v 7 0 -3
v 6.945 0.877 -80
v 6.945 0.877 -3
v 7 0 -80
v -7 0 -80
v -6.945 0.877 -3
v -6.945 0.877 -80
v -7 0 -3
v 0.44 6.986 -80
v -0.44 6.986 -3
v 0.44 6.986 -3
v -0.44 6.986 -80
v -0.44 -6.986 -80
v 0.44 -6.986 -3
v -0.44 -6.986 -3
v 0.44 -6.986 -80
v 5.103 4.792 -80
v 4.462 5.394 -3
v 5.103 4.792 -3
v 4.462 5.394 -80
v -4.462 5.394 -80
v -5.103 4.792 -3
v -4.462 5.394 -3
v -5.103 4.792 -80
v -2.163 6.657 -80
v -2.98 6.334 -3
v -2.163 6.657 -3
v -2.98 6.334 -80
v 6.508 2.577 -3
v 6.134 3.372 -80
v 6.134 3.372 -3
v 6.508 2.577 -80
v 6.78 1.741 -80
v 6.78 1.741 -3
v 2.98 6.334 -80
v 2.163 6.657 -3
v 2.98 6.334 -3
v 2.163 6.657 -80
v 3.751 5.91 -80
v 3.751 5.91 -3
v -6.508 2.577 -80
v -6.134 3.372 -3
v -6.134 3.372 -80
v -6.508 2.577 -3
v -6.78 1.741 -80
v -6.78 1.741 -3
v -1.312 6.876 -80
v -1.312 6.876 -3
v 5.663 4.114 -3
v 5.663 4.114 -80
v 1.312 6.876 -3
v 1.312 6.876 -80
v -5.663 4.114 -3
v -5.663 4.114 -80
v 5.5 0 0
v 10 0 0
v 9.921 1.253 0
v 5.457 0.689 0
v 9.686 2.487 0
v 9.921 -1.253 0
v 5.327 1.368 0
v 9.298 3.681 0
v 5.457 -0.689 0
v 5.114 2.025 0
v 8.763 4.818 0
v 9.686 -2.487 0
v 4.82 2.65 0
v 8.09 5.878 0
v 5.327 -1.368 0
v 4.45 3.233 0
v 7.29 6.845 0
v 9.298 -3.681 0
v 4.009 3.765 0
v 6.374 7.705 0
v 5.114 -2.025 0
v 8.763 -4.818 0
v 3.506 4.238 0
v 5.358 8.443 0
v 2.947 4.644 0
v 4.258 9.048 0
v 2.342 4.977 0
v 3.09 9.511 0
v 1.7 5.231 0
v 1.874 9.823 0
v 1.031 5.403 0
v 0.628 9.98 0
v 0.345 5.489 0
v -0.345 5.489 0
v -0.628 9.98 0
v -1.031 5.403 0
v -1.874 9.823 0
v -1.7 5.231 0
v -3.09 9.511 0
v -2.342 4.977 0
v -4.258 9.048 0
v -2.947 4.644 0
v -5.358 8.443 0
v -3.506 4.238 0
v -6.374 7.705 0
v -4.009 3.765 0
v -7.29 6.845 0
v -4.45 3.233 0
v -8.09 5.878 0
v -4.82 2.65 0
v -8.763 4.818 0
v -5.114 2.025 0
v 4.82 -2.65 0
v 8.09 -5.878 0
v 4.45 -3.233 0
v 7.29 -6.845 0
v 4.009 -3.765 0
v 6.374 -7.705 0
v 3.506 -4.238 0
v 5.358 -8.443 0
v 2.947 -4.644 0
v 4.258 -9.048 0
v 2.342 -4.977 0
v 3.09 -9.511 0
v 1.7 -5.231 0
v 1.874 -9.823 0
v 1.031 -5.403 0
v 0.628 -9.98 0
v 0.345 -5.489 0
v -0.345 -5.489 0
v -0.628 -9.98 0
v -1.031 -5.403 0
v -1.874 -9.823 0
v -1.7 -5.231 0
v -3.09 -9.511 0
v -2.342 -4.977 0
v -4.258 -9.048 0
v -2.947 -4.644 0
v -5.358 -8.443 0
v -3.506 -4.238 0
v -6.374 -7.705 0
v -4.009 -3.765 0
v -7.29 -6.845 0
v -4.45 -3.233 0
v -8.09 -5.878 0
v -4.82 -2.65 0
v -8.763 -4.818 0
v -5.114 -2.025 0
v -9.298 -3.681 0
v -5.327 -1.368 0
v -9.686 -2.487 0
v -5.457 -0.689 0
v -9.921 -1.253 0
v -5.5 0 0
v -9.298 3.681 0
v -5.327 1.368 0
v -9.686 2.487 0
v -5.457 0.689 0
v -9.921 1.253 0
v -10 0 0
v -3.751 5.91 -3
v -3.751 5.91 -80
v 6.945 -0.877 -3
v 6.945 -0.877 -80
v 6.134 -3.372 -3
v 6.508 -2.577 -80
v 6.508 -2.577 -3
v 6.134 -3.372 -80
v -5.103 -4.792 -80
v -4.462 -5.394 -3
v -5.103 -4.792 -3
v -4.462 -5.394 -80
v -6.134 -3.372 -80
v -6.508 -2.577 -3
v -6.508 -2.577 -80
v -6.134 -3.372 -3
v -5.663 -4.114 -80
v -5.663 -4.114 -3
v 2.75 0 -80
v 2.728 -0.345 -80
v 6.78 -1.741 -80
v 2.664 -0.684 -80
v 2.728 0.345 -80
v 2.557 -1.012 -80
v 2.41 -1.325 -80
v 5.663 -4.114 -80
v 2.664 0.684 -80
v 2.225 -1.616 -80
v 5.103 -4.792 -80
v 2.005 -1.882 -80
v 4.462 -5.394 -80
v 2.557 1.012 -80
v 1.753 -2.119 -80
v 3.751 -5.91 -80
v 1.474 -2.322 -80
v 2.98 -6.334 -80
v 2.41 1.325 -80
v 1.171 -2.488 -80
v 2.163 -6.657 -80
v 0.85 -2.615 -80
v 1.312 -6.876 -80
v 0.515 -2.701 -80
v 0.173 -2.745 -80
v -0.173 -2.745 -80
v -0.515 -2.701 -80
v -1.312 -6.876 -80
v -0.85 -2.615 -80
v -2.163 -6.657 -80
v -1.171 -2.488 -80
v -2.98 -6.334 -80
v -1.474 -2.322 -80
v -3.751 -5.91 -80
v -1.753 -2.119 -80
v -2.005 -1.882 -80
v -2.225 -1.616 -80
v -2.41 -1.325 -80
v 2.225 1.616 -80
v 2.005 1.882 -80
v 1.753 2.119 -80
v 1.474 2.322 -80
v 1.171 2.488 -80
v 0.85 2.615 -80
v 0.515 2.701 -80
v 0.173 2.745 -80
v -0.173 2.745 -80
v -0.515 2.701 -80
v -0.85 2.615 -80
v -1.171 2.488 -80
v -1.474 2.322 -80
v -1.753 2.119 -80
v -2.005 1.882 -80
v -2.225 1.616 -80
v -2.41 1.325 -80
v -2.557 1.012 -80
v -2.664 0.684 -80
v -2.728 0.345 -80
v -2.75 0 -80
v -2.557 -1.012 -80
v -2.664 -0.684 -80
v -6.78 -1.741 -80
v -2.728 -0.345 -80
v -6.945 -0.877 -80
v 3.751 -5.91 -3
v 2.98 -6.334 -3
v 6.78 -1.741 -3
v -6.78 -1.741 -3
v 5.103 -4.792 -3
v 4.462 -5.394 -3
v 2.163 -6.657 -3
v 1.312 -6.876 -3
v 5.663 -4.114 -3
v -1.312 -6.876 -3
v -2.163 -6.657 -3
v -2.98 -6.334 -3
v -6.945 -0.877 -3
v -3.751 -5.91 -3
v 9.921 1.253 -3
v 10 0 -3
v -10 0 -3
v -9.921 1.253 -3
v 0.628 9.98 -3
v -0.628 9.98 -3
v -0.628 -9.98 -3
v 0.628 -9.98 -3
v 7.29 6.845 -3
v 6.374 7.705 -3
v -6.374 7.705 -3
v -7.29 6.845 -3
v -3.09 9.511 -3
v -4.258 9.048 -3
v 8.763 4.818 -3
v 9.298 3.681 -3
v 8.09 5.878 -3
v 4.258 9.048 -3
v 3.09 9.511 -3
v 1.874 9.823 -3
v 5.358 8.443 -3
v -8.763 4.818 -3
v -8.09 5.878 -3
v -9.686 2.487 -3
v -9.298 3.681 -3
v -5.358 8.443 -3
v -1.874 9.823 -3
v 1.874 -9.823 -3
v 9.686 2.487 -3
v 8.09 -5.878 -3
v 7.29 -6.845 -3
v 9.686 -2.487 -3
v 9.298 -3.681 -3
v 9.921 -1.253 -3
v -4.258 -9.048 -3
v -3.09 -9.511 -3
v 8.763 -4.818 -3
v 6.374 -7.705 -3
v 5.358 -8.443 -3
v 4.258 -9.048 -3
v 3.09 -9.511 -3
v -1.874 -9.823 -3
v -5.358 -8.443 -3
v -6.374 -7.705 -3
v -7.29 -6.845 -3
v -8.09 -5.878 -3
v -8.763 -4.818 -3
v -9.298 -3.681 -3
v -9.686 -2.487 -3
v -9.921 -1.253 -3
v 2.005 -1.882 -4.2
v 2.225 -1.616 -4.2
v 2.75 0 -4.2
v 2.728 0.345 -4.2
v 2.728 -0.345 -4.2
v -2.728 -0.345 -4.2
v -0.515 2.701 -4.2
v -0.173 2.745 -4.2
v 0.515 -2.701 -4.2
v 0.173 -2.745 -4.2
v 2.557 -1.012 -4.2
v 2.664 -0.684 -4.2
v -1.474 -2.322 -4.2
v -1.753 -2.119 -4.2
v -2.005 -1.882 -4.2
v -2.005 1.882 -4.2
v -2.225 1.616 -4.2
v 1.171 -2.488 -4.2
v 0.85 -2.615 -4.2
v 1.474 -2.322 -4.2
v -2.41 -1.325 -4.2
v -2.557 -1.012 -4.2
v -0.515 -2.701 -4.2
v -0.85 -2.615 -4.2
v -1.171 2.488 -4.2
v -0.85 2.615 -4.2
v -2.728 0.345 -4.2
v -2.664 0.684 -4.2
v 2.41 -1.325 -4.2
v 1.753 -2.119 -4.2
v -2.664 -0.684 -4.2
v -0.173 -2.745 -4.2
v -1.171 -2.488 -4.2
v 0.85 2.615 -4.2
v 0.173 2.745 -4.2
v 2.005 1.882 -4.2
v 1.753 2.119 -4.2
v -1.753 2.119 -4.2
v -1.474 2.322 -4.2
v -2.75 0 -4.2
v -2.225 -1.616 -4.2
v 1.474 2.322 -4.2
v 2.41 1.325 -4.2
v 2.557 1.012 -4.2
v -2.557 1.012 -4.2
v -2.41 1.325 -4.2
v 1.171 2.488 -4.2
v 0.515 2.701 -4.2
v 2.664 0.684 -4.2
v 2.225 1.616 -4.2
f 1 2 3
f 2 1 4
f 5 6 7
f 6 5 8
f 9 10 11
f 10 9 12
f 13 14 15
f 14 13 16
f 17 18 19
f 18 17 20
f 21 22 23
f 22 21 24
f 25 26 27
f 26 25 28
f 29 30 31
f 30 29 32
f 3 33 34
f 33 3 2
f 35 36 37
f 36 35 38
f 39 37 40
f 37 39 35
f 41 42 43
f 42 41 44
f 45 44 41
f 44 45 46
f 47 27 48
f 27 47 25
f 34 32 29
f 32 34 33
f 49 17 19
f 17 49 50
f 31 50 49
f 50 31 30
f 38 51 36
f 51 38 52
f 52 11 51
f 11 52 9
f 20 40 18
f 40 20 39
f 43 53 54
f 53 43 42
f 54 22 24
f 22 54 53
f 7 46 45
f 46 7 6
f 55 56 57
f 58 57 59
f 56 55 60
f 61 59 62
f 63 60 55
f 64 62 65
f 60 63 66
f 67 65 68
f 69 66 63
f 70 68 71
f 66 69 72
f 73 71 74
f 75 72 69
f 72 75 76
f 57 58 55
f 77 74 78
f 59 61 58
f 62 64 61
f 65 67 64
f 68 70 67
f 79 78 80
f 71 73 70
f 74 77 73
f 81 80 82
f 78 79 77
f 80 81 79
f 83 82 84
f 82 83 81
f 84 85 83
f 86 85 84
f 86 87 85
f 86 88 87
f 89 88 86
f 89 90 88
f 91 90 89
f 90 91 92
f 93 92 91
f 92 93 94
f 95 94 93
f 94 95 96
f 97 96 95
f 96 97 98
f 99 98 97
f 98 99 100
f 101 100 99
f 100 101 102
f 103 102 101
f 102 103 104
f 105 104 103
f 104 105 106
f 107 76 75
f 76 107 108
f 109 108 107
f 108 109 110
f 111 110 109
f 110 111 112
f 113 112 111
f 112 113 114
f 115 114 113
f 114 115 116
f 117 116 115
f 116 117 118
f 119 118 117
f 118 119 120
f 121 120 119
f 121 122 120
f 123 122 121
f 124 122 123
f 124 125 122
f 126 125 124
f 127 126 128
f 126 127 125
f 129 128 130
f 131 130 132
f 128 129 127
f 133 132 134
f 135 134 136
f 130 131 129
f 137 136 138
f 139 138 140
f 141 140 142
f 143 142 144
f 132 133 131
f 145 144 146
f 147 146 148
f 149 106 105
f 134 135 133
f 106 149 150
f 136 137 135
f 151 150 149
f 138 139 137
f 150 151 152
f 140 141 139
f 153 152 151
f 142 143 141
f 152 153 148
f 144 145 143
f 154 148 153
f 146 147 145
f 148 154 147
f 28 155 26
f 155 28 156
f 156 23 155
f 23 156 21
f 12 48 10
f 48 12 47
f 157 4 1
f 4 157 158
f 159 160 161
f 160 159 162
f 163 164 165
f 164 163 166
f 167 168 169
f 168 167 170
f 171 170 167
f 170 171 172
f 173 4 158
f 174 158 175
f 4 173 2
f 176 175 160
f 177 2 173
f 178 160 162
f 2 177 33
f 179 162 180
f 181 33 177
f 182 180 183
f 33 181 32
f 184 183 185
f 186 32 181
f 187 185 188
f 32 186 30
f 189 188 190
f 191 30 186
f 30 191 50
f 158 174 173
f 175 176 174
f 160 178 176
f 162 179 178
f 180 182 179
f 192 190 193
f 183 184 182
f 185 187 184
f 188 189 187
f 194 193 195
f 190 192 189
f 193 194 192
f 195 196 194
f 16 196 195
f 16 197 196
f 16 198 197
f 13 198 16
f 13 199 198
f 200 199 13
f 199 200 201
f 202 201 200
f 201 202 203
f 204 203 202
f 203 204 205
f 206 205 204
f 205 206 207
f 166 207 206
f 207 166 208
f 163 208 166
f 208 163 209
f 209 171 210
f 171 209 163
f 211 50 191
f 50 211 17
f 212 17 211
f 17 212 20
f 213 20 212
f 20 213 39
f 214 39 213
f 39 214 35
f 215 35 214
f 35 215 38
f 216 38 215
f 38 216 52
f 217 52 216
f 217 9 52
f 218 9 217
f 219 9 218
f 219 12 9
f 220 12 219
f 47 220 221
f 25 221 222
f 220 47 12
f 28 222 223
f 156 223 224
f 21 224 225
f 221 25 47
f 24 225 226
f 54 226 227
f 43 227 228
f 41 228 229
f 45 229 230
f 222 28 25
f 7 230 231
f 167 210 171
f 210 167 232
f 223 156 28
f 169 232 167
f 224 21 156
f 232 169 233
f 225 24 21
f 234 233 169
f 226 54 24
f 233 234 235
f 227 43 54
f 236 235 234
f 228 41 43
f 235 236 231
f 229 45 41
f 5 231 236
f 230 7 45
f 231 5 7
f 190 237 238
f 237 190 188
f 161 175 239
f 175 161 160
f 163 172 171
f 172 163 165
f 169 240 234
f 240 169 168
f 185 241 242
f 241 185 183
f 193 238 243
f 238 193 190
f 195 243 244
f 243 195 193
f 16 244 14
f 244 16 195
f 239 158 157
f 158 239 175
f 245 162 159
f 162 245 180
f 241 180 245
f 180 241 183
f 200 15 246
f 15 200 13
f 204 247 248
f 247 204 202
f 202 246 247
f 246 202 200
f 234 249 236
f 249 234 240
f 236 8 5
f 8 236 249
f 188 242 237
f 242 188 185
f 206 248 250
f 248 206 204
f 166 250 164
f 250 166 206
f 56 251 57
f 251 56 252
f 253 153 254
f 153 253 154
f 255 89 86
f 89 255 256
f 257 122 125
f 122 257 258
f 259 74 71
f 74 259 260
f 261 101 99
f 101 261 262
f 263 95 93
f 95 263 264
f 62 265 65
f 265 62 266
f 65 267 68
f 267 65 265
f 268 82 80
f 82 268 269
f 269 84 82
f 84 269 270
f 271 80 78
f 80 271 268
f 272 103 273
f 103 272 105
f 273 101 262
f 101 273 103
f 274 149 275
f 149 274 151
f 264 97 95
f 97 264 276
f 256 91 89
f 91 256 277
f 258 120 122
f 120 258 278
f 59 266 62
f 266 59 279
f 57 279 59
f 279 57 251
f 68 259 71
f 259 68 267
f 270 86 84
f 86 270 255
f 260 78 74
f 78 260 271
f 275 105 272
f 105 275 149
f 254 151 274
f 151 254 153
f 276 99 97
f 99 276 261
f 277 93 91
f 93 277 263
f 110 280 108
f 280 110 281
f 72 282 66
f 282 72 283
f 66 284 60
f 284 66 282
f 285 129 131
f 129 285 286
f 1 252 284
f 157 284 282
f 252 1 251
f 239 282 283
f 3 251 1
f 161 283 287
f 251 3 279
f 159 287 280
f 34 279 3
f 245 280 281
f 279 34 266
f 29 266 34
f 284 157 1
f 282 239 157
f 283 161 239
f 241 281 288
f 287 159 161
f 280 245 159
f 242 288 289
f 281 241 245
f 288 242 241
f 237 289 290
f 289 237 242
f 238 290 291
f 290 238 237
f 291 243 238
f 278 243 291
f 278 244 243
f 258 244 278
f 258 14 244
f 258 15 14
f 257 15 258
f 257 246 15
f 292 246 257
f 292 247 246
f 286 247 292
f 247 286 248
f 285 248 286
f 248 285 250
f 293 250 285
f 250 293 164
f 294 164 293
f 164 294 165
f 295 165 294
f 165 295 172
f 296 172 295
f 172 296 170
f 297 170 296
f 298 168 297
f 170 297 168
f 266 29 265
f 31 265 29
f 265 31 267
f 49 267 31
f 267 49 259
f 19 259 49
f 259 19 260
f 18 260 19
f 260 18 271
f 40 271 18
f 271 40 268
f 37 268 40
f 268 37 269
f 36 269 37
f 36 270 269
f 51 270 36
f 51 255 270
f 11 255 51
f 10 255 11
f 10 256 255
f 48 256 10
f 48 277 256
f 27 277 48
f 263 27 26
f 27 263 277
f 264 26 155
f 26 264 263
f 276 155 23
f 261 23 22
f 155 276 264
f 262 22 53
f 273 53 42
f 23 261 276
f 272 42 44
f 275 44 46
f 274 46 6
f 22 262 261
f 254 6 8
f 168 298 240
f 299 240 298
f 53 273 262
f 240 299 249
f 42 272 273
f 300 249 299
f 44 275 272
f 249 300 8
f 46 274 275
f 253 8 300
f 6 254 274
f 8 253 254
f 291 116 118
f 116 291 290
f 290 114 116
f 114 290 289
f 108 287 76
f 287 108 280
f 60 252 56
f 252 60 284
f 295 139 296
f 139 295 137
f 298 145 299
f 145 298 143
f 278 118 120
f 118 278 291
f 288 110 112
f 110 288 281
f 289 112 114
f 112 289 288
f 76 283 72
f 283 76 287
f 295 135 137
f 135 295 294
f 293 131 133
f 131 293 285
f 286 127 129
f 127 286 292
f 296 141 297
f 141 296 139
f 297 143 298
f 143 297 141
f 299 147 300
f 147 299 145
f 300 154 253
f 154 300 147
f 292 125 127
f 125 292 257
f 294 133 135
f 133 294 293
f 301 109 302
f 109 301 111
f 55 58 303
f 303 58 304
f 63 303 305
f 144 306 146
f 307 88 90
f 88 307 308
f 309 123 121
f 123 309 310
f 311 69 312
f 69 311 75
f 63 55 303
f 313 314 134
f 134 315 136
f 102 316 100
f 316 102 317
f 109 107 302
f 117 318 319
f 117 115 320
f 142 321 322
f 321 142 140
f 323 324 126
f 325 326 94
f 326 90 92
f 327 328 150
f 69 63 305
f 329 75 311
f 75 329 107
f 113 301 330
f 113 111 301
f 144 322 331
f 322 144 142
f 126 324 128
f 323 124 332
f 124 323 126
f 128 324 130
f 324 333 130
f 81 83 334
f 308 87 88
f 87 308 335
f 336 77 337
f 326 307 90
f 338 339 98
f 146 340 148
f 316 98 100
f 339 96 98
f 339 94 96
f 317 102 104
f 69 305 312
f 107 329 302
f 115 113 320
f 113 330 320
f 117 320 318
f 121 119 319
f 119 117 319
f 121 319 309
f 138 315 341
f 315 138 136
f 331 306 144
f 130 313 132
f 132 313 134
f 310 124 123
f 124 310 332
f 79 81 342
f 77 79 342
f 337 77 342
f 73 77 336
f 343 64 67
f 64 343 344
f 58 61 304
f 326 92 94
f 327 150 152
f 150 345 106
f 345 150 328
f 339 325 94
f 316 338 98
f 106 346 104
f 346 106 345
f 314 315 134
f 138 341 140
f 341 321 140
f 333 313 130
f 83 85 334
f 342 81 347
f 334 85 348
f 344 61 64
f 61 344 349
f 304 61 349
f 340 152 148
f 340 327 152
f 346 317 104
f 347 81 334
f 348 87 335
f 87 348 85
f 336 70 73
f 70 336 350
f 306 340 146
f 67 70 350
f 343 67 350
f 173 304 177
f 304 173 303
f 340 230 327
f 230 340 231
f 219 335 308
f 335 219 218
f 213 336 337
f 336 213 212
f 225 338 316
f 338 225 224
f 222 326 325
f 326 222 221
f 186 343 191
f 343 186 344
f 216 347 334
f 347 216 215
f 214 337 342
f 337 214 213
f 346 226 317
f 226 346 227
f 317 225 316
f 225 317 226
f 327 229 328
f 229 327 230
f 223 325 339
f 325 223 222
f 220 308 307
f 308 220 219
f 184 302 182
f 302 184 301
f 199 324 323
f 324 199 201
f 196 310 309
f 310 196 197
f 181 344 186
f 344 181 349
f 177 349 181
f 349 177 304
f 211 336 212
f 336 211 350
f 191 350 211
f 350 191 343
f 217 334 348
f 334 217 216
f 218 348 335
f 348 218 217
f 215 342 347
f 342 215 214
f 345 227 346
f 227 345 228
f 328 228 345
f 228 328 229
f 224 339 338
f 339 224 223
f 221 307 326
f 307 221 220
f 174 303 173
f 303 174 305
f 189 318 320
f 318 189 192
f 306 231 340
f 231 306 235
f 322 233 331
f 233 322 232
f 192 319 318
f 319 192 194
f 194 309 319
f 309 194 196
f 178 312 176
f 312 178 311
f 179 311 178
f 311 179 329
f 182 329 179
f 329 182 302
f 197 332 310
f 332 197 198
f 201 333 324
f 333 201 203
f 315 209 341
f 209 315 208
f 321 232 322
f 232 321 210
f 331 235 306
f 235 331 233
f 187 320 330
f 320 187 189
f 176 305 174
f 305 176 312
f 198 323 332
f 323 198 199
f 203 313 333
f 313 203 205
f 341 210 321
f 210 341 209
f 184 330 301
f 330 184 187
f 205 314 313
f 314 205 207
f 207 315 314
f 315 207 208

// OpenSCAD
$fn = 50;


difference() {
	union() {
		translate(v = [0, 0, -80.0000000000]) {
			cylinder(h = 80, r = 7.0000000000);
		}
		translate(v = [0, 0, -3.0000000000]) {
			cylinder(h = 3, r = 10.0000000000);
		}
	}
	union() {
		translate(v = [0, 0, 0]) {
			rotate(a = [0, 0, 0]) {
				difference() {
					union() {
						#translate(v = [0, 0, -80.0000000000]) {
							cylinder(h = 80, r = 2.2500000000);
						}
						#translate(v = [0, 0, -4.2000000000]) {
							cylinder(h = 4.2000000000, r1 = 2.7500000000, r2 = 5.5000000000);
						}
						#translate(v = [0, 0, -80.0000000000]) {
							cylinder(h = 80, r = 2.7500000000);
						}
						#translate(v = [0, 0, -80.0000000000]) {
							cylinder(h = 80, r = 2.2500000000);
						}
					}
					union();
				}
			}
		}
	}
}
